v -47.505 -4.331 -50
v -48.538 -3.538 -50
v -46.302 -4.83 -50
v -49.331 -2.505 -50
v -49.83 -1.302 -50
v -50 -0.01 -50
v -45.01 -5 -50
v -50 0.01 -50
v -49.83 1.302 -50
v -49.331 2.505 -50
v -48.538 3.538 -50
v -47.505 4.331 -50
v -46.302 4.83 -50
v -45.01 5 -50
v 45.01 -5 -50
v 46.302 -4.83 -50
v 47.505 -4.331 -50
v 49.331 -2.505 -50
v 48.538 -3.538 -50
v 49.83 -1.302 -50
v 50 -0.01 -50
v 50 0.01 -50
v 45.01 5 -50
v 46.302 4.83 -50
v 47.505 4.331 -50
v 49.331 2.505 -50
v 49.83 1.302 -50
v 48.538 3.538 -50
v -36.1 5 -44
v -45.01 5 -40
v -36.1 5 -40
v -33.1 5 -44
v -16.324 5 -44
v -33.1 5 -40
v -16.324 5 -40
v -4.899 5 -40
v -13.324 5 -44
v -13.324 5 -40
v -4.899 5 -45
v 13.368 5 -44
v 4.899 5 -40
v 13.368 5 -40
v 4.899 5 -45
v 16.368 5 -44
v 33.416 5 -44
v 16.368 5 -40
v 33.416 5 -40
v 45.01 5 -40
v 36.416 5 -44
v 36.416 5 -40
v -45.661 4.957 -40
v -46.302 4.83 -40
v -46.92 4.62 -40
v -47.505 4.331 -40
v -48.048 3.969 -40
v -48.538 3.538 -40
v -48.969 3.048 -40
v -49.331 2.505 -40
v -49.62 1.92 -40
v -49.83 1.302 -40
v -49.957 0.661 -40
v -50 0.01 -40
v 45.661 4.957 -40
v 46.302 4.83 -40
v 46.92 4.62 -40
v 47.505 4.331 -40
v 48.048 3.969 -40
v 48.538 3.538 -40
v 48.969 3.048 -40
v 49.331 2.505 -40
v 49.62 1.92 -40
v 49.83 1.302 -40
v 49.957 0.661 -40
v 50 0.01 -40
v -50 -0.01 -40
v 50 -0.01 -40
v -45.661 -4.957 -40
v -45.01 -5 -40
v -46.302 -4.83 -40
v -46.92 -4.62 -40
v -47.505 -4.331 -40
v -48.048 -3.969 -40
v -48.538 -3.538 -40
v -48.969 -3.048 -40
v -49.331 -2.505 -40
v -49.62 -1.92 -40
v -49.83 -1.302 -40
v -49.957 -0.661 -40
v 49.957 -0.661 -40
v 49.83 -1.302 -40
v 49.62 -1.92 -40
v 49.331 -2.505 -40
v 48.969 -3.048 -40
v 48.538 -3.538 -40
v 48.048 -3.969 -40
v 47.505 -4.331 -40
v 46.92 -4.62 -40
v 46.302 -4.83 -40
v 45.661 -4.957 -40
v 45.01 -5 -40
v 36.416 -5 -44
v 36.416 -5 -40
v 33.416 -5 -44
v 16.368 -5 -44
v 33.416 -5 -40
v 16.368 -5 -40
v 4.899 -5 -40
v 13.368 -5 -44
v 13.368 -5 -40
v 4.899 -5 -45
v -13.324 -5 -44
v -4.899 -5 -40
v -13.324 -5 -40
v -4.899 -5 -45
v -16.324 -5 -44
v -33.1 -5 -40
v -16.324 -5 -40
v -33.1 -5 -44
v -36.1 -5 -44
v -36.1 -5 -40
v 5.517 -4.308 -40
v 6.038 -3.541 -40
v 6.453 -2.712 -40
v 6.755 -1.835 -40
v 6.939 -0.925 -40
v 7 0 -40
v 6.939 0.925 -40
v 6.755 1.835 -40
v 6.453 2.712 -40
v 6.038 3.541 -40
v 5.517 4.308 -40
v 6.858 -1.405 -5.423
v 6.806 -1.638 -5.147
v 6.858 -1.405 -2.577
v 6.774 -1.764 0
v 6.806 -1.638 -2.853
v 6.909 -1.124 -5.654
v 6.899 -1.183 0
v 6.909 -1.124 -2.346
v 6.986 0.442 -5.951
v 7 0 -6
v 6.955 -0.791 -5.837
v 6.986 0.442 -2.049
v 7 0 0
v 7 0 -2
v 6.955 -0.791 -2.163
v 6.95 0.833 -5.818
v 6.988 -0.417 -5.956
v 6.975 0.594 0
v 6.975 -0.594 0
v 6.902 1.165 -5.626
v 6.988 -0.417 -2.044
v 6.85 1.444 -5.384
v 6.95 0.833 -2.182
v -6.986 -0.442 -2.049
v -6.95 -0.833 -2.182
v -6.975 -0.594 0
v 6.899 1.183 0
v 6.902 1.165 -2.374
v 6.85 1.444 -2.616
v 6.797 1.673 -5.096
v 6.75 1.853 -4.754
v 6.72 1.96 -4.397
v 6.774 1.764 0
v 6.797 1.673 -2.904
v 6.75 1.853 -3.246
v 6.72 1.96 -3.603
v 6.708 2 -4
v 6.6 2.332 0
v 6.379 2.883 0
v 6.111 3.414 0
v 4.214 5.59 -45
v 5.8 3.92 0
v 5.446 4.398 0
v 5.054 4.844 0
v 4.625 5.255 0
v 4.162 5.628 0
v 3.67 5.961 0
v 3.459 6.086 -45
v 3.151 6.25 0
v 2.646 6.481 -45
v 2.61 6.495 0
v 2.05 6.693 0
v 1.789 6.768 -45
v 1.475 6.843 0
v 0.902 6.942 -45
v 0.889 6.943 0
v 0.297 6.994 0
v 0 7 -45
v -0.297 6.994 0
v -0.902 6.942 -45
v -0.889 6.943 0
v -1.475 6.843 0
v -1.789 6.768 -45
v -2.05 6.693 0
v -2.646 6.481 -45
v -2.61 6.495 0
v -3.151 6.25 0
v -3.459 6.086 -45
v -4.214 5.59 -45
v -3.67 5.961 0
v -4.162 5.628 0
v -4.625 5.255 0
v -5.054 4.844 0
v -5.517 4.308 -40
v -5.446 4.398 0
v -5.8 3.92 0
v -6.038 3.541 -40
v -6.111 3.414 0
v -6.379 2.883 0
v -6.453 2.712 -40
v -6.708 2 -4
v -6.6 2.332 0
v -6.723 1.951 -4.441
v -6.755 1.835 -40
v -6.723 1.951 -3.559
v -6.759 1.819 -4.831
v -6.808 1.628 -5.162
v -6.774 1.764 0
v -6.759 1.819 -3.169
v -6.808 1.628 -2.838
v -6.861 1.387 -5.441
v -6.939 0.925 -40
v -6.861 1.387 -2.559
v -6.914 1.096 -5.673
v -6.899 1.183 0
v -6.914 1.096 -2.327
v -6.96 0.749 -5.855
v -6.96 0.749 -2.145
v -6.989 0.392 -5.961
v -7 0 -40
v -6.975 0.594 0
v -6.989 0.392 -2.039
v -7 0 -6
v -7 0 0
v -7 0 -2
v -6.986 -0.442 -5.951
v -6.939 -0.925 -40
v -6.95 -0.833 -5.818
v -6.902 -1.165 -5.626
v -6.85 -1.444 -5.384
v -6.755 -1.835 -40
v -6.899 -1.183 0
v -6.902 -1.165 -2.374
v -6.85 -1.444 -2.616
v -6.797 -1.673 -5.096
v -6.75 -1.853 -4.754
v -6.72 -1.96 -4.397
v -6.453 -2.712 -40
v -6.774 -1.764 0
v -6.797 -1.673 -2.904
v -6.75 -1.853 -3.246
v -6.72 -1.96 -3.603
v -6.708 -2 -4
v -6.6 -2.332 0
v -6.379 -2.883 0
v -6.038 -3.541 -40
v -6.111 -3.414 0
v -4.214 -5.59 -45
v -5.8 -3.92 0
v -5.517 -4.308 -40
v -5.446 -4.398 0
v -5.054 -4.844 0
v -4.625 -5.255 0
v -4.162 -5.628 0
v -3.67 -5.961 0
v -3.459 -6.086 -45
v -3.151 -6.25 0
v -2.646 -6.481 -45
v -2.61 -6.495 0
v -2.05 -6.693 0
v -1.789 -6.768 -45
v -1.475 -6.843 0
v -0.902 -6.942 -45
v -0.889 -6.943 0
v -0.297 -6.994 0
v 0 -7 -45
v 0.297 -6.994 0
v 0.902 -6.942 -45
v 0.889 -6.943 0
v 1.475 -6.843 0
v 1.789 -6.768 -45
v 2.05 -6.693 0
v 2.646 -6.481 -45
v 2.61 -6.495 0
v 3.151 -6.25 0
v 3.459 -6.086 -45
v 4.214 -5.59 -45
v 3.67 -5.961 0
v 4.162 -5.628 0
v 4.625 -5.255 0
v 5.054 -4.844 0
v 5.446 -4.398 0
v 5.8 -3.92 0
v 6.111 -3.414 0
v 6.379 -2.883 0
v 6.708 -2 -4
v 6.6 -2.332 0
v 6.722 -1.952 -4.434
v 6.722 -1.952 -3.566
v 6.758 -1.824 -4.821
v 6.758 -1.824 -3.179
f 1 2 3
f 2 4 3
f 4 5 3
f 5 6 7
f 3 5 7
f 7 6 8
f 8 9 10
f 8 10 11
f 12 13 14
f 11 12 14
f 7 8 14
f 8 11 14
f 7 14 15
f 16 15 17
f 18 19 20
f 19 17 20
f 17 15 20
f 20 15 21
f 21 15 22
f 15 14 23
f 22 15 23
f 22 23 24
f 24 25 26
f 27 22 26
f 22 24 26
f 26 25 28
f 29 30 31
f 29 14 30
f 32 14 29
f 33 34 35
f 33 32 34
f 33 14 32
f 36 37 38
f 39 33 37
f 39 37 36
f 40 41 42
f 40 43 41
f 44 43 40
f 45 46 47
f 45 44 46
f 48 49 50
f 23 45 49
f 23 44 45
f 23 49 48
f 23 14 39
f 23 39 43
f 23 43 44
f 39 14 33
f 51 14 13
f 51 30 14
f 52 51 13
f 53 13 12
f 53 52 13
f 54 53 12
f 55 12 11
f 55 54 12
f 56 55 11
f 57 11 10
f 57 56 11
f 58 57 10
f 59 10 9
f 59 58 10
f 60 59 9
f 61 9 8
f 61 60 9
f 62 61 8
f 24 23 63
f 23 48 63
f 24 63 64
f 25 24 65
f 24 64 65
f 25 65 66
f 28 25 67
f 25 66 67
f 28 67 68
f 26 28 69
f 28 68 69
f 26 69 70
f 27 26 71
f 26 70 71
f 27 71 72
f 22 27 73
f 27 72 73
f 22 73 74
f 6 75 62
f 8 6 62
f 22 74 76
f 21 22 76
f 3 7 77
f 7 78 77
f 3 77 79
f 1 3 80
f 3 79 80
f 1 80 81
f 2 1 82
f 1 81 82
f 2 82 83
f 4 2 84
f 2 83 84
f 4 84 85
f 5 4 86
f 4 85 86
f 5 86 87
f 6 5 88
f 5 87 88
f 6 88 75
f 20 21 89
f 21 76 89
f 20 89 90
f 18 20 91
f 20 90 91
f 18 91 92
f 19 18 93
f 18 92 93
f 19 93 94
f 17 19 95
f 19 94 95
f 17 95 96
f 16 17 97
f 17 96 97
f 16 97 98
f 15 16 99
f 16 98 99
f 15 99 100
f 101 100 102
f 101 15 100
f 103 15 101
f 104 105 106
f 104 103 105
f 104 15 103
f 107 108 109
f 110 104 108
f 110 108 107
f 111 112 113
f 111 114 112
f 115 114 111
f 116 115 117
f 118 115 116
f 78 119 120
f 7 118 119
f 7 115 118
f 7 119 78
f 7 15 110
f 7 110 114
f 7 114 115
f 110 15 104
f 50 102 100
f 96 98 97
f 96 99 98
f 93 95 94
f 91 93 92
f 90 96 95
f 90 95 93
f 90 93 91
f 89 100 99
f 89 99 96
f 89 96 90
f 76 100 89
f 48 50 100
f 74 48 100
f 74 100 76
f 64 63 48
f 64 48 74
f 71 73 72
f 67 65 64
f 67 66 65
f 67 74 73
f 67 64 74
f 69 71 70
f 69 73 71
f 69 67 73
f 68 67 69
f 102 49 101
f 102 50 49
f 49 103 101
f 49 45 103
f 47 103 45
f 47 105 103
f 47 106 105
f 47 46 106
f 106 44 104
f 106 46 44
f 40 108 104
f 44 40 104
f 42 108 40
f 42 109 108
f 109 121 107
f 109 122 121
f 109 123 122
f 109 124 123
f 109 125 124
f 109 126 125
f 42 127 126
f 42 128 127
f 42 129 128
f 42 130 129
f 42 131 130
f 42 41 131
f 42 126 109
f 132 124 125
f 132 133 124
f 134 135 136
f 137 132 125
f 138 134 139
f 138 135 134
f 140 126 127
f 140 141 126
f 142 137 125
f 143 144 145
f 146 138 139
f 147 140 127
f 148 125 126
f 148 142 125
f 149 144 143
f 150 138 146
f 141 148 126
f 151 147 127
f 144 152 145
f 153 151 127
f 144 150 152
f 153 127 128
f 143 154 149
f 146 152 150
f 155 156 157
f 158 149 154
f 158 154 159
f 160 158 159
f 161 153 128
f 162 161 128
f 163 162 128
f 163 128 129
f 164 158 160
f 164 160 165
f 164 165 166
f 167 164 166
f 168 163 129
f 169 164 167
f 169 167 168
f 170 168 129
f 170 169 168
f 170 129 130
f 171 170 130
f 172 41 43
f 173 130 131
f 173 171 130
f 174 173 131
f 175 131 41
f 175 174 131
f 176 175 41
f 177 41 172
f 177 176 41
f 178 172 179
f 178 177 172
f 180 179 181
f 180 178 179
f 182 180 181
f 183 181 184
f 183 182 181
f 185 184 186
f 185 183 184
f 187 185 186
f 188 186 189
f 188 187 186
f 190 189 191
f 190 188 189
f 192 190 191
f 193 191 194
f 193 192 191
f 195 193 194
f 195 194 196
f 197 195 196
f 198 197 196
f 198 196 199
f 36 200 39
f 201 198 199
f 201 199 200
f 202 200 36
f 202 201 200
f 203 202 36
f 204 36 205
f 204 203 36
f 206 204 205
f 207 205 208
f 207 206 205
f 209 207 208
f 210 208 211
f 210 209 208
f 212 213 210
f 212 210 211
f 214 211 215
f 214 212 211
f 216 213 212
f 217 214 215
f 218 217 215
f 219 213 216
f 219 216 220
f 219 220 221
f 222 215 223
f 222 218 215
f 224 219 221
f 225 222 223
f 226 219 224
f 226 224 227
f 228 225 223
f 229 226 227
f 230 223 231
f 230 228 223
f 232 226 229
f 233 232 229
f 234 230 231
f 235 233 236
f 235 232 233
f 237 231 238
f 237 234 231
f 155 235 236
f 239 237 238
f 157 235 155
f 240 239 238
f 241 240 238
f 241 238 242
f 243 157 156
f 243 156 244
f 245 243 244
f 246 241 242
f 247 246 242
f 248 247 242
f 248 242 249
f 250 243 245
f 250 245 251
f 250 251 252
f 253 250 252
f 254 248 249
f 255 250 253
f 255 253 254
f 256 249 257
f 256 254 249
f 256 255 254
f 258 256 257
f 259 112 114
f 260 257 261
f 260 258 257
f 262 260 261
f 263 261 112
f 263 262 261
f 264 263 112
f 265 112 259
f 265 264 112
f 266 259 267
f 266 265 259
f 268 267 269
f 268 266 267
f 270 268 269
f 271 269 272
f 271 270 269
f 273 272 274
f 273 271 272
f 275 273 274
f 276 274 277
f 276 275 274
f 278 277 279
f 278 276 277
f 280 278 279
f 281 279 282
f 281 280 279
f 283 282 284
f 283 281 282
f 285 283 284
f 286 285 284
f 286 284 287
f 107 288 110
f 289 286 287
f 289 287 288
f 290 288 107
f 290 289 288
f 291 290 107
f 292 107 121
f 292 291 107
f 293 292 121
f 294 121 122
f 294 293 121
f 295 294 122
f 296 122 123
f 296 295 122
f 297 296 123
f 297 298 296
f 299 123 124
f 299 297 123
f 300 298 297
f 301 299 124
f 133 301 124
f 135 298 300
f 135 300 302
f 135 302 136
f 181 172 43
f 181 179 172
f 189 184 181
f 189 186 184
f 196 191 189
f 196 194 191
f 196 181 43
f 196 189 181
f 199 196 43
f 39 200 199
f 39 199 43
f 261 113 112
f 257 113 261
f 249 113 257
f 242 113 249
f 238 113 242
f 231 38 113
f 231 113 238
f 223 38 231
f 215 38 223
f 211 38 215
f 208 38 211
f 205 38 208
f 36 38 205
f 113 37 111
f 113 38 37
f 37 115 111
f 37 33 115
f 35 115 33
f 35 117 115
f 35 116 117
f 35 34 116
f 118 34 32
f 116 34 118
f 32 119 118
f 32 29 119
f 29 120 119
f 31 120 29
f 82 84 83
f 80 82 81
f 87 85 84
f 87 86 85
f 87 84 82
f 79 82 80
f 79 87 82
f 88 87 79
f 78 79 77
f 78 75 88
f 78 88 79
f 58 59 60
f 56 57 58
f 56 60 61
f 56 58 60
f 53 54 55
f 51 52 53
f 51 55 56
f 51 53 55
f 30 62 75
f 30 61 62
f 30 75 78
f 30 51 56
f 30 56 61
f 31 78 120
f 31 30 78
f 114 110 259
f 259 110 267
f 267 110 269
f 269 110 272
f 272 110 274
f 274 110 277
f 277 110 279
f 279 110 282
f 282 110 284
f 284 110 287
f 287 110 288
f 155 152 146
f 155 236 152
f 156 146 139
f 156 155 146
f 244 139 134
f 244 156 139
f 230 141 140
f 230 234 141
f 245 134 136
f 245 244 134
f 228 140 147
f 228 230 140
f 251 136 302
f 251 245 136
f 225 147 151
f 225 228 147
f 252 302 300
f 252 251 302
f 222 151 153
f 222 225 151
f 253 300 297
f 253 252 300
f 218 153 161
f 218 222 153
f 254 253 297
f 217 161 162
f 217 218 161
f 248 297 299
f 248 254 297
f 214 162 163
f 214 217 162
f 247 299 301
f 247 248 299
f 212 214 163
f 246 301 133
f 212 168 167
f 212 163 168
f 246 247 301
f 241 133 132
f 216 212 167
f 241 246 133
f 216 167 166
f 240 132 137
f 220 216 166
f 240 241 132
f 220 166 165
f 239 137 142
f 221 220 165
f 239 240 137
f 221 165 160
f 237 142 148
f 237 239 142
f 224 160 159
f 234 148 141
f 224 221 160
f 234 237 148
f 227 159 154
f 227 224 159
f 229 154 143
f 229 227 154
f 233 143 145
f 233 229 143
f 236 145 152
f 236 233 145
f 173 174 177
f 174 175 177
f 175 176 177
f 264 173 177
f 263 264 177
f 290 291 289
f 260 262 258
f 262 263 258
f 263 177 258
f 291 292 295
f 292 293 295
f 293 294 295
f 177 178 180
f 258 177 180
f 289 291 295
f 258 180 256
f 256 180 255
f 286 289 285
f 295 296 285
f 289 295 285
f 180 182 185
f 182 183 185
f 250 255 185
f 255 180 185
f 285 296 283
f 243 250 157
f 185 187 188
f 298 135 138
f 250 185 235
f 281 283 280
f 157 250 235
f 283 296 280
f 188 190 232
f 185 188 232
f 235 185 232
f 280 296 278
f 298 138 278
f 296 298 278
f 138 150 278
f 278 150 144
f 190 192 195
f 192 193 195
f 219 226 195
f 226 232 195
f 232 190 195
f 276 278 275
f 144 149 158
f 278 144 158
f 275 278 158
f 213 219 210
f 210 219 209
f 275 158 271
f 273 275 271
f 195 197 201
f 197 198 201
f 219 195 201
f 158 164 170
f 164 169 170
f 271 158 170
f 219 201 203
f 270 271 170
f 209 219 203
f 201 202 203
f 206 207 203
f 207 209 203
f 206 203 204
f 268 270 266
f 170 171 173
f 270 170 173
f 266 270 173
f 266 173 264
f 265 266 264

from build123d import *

# Parameters (mm, degrees)
SKETCH003_R   = 2
PAD002_DEPTH  = 10
SKETCH_R      = 7
PAD_DEPTH     = 45
SKETCH001_W   = 100
SKETCH001_H   = 10
PAD001_DEPTH  = 5
FILLET_R      = 4.99
SKETCH002_W   = 3
SKETCH002_H   = 13.521623
SKETCH002_H_2 = 14.821778
SKETCH002_H_3 = 14.691763
POCKET_DEPTH  = 4


with BuildPart() as pad002:
    # Sketch003 → Pad002 (new body, symmetric)
    with BuildSketch(Plane(origin=(0, 0, -4), x_dir=(0, 0, -1), z_dir=(1, 0, 0))):
        Circle(SKETCH003_R)
    extrude(amount=PAD002_DEPTH, both=True)


with BuildPart() as cut:
    # Sketch → Pad (new body)
    with BuildSketch(Plane.XY):
        Circle(SKETCH_R)
    extrude(amount=-PAD_DEPTH)

    # Cut: cut Pad002
    add(pad002.part, mode=Mode.SUBTRACT)


with BuildPart() as soporte_pintura_inferior:
    # Sketch001 → Pad001 (new body, symmetric)
    with BuildSketch(Plane.XY.offset(-45)):
        Rectangle(SKETCH001_W, SKETCH001_H)
    extrude(amount=PAD001_DEPTH, both=True)

    # Fillet
    fillet_edges = [soporte_pintura_inferior.edges().sort_by_distance(p)[0] for p in [
        (-50, 5, -45),
        (-50, -5, -45),
        (50, 5, -45),
        (50, -5, -45),
    ]]
    fillet(fillet_edges, radius=FILLET_R)

    # Sketch002 → Pocket (cut)
    with BuildSketch(Plane.XY.offset(-40)):
        with Locations((-34.600117, -0.008592)):
            Rectangle(SKETCH002_W, SKETCH002_H)
        with Locations((-14.823811, -0.528653)):
            Rectangle(SKETCH002_W, SKETCH002_H_2)
        with Locations((14.868009, -0.33363)):
            Rectangle(SKETCH002_W, SKETCH002_H_3)
        with Locations((34.916373, -0.463645)):
            Rectangle(SKETCH002_W, SKETCH002_H_3)
    extrude(amount=-POCKET_DEPTH, mode=Mode.SUBTRACT)

    # Fusion: union Cut
    add(cut.part)


solid = soporte_pintura_inferior.part
